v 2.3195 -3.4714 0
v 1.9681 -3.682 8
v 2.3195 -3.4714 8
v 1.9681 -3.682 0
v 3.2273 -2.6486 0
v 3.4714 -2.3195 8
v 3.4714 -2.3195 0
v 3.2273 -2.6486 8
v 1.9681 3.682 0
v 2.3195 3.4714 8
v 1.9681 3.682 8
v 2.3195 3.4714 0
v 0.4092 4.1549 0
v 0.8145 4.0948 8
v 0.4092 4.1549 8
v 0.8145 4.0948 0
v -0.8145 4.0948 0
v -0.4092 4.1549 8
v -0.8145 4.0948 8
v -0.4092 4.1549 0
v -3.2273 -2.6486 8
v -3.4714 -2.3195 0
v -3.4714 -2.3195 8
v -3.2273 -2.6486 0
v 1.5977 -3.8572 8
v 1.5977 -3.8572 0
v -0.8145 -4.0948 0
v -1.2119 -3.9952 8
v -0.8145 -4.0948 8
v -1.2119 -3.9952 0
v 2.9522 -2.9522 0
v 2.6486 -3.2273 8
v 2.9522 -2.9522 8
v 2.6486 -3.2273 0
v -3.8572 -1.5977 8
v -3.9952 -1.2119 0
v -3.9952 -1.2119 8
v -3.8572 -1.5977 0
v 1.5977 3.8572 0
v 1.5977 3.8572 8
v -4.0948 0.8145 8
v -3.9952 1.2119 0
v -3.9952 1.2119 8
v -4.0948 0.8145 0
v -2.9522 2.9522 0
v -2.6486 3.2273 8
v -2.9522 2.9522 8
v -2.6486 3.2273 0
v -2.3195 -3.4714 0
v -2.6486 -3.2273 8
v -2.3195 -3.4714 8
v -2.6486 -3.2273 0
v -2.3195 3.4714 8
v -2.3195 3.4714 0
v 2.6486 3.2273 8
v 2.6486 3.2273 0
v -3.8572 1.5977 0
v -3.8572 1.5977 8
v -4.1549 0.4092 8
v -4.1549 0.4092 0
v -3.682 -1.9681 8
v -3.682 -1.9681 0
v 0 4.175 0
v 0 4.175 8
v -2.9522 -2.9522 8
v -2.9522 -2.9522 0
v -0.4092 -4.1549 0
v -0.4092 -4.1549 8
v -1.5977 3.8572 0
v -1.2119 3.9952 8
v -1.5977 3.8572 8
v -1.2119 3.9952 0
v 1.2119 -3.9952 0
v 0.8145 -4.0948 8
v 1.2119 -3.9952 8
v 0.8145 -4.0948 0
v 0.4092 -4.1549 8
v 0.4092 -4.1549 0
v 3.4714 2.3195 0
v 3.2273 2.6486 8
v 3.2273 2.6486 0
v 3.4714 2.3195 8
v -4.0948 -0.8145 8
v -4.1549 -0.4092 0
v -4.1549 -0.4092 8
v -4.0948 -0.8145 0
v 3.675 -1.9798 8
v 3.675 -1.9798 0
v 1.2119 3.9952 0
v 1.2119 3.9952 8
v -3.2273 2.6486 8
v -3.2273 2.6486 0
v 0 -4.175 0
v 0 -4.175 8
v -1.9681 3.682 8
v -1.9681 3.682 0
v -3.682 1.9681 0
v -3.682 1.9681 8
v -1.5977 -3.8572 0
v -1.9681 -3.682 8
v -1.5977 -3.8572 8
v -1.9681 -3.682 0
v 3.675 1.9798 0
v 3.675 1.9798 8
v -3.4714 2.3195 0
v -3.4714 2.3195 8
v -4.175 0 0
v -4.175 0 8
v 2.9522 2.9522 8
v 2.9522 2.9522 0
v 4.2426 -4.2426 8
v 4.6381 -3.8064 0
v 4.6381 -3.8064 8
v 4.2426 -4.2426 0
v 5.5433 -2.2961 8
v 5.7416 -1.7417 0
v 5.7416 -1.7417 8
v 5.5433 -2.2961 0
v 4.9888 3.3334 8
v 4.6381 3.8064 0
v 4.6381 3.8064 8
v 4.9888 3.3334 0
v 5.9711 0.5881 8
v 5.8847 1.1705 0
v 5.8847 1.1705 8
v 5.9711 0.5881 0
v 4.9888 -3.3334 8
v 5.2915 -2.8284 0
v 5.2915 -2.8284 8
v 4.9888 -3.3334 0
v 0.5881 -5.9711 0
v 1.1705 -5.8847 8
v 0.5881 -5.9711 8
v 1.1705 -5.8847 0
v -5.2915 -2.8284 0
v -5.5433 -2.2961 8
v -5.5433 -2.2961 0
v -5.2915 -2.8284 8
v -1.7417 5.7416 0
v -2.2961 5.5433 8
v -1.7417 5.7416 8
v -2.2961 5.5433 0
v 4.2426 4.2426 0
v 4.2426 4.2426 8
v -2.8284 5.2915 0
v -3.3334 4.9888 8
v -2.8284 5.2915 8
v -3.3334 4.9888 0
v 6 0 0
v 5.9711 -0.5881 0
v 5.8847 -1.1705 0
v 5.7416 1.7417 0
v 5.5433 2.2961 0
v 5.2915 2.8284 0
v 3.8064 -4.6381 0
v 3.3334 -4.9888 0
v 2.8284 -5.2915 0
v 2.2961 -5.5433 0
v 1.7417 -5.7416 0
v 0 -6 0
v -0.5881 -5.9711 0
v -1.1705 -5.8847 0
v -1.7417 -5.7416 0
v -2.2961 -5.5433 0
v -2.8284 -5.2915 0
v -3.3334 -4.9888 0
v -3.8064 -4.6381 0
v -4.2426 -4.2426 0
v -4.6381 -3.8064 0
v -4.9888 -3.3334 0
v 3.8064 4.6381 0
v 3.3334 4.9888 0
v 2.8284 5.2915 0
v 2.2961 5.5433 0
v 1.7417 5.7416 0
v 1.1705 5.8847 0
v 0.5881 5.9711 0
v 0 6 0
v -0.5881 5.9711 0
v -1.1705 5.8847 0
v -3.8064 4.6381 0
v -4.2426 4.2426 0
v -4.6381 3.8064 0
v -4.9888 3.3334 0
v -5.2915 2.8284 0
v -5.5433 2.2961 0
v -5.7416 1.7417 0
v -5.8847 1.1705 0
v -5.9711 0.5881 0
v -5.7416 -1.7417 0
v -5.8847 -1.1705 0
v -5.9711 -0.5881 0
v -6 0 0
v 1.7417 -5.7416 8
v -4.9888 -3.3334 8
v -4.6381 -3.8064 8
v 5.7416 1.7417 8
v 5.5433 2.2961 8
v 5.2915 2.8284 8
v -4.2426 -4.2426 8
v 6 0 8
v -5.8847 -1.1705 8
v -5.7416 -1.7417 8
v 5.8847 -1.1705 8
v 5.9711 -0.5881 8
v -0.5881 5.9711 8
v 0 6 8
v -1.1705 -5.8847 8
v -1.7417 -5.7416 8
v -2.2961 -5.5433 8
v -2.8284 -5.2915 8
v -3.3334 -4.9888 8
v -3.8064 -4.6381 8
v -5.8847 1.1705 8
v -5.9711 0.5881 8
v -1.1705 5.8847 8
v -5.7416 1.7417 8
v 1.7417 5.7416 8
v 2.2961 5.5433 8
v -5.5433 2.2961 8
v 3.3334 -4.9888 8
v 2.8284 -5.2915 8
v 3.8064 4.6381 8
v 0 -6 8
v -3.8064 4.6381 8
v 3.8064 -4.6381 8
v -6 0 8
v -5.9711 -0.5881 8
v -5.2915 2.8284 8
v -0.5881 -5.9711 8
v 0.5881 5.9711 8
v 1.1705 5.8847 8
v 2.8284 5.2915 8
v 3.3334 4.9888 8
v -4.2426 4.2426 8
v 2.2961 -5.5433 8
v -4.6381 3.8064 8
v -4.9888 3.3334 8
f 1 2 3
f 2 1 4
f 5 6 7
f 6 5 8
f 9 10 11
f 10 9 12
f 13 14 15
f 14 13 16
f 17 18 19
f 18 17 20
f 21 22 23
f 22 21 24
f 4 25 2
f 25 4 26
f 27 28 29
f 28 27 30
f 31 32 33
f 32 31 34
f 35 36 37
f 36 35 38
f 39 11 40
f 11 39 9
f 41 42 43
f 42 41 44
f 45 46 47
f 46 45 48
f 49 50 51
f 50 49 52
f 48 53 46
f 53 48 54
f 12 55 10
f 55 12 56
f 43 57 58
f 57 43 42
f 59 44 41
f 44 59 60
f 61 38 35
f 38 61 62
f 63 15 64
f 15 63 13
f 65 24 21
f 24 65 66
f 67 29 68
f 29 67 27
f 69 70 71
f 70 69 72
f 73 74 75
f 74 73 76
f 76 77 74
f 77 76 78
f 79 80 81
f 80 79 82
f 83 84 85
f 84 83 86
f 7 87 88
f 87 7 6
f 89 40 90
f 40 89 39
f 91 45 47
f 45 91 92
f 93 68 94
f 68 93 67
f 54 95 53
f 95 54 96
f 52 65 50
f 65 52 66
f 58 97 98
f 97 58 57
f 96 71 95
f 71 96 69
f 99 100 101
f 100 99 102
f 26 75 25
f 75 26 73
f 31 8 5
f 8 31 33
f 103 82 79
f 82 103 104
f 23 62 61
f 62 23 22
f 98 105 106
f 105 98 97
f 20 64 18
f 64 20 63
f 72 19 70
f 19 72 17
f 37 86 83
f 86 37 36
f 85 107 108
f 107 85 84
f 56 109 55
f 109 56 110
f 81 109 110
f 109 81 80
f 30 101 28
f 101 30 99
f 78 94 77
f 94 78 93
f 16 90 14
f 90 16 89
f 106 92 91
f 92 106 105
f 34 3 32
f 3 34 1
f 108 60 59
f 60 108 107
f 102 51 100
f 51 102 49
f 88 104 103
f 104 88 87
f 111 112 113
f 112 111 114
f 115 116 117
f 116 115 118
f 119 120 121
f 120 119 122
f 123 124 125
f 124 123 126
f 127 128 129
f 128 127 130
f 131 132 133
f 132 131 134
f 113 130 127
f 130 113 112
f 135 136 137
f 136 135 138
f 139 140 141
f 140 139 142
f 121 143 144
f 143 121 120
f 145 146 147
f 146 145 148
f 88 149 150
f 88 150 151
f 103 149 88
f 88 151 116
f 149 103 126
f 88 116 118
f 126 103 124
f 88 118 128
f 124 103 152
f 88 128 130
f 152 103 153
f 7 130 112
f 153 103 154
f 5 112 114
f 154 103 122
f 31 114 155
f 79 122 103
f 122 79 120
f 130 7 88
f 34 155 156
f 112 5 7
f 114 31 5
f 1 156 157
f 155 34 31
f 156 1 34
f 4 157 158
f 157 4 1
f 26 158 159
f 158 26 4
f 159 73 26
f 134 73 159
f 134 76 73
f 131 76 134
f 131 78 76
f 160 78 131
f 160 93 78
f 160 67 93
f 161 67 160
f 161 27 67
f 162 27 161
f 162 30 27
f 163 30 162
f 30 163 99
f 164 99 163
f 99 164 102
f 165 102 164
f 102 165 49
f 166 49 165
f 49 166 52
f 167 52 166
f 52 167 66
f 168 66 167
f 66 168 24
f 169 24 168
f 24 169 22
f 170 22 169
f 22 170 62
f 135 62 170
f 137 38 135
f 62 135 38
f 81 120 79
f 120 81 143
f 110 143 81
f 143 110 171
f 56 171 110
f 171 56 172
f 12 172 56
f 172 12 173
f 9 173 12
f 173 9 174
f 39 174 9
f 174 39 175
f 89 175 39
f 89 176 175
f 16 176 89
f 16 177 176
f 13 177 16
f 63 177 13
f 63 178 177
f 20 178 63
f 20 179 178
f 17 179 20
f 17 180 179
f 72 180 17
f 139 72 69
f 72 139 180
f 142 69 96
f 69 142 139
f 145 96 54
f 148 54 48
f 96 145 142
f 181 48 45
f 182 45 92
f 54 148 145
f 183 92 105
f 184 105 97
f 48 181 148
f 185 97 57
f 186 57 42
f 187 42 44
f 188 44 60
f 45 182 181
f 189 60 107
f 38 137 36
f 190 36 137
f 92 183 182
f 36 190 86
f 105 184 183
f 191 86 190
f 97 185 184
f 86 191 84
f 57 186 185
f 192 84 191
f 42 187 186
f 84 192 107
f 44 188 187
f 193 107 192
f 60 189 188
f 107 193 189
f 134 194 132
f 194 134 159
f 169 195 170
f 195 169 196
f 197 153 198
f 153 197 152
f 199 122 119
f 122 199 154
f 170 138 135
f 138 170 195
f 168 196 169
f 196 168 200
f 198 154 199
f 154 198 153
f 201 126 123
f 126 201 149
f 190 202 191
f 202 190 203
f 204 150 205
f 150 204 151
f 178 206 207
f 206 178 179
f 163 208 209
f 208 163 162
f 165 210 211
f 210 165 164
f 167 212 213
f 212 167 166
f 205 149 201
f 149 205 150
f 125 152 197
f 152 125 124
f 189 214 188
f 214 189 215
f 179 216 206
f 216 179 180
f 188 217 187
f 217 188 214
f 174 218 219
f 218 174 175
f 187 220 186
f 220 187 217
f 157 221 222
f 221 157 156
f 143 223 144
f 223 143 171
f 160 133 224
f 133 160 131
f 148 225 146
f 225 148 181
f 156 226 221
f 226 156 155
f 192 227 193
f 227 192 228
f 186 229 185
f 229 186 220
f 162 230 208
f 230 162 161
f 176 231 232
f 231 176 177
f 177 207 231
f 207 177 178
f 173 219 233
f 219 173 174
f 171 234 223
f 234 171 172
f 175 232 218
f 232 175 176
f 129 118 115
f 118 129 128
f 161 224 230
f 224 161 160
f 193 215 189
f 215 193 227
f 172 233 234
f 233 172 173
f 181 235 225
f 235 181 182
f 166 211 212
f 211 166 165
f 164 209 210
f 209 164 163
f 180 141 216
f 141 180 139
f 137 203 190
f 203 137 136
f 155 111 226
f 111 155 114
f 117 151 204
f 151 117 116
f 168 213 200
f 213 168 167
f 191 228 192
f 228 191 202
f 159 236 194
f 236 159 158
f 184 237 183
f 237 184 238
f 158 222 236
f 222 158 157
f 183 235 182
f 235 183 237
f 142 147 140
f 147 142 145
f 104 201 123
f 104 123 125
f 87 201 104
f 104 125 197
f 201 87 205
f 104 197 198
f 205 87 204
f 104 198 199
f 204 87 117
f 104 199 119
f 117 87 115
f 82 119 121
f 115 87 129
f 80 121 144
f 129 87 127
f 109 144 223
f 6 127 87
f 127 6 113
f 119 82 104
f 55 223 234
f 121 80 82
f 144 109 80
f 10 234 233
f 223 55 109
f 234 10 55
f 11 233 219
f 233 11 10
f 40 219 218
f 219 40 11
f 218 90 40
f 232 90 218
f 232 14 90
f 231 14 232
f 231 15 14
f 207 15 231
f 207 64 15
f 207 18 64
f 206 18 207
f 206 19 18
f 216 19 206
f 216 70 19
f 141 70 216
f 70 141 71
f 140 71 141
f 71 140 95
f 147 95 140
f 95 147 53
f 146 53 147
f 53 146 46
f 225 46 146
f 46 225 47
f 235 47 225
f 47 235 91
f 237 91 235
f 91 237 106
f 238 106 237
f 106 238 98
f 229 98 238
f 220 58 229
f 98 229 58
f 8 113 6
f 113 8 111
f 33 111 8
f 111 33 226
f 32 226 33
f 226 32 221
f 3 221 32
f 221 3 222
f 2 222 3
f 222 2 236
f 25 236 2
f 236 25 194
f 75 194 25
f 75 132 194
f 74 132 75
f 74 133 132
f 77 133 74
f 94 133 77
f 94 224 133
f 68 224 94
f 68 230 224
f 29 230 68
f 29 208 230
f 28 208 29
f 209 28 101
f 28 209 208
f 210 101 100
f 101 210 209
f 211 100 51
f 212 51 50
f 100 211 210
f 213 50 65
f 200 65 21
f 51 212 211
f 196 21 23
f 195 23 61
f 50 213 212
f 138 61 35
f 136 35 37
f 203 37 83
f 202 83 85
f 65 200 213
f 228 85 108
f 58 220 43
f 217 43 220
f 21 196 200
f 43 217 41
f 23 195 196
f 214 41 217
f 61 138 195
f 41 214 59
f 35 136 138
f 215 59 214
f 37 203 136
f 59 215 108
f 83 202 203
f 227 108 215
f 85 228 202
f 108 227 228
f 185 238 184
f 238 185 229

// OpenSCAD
// file: parameters.scad
// =============================================================================
// Gen-BZ — nightly 2026-10-11 (physics_scorer, honest magpylib watts)
// Minimum-gap, wire-saver stator for the Gen-BX rotors: only 5.4 mm of copper (12 layers), so the magnet faces are just 8.0 mm apart and peak Bz at the copper reaches ≈0.64 T. It holds ~20 % less copper than Gen-BX (≈300 m, leaving ~90 m of the spool spare and much less winding), and loses only ≈5.5 % of the watts vs Gen-BX — the best watts-per-metre of wire tonight.
// Clocking 0 deg (magnets N facing S) + D-flat keyed bore + index notch + flip-symmetric hole map.
// Windable 2-piece bobbin; turns = physics_scorer turns_fit; copper only between flanges.
// Steel back-iron: 2× Ø168 × 4.76 mm (3/16") mild-steel discs (steel_backiron_disc.dxf); magnets sit ON the steel
// (through-pockets) -> score with --back-iron. Night 2026-10-11.
// =============================================================================
topology            = "dual_rotor";

// --- Wire / winding (physics_scorer winding-fit) -------------------------------
wire_awg            = 26;
wire_od             = 0.45;     // insulated OD mm (bare 0.405)
fill_realistic      = 0.65;     // insulated-wire area / window (DENSE layered wind with a jig; scorer cap 0.65)
turns               = 328;       // = physics_scorer turns_fit (do NOT raise)
coil_former_type    = "bobbin";
coil_core_inset     = 14.87;     // radial copper build: hub = copper boundary inset by this
wind_build_axial    = 0.0;      // nothing proud of the flanges
wind_build_radial   = 0.0;

// --- Bobbin (base + lid) ---------------------------------------------------------
coil_id_r           = 53.00;    // copper boundary sector
coil_od_r           = 88.00;
span_deg            = 26.43;    // = pitch - 2*asin((wall+0.85)/coil_id_r) -> >=1.2 mm stator web
former_web          = 5.40;     // copper height between flanges (TALL copper: steel keeps Bz up)
flange_t            = 0.80;     // >= 0.8 mm FDM wall rule (tall winds push on the flanges)
wall                = 0.80;     // flange lip beyond copper
former_bare_h       = former_web + 2 * flange_t;
coil_envelope_h     = former_bare_h + 2 * wind_build_axial;
tab_w               = 7.0;
tab_len             = 7.0;
tab_h               = former_bare_h / 2;
pin_d               = 1.9;      // 1.75 mm filament locating pin
coil_mount_r        = coil_od_r + 0.2 + 4.0;
lead_y              = 1.6;
lead_slot_w         = 0.9;
lead_groove_d       = 0.6;

// --- Gap -------------------------------------------------------------------------
run_clear           = 0.50;     // rotor face -> flange
gap_spacer_h        = run_clear + wind_build_axial;
m2m                 = coil_envelope_h + 2 * run_clear;   // rotor face to rotor face (= gap_sleeve length)

// --- Stator ----------------------------------------------------------------------
coil_stations       = 12;
bay_clear           = 0.25;
stator_thick        = former_bare_h;                        // bobbins flush both faces
stator_od           = 194;
shaft_clear_stator  = 14.0;     // stator is static; gap sleeve OD 12 spins inside

// --- Rotor(s) --------------------------------------------------------------------
magnet_Br           = 1.43;     // N52
magnet_d_large      = 20.0;
magnet_h_large      = 5.0;      // one O20x5 per pocket
magnet_h_small      = 5.0;      // unused: no O5 pockets in this kit
halbach_magnetisation = "none";  // NO O5 assist magnets in this kit (scan: they lower the 4-pole score)
rotor_b_same_axis   = true;     // same-index magnets share one axis: N faces S across the gap
large_pocket_d      = 20.3;
small_pocket_d      = 5.3;
pocket_h            = 5.00;     // THROUGH the carrier: magnet back face sits on the steel disc (FLUSH seat: carrier = magnet height, magnet face level with the rotor face)
large_n             = 8;
R_large             = 71.0;
small_r_list        = [];       // no O5 pockets
carrier_od          = 168.0;
carrier_thick       = pocket_h;
hub_h               = 12.0;     // > steel_t + insert: radial set-screw clears the steel
hub_od              = 24.0;     // slim hub so the M4 brace rods fit at R~18 inside the coil ring
hub_insert_d        = 4.0;      // M3 heat-set insert, radial, bears on the D-flat
rotor_b_offset_deg  = 0.0;      // CLOCKING: magnets directly opposite
shaft_key           = "dflat";
dflat_depth         = 0.5;      // 8 mm shaft with 0.5 mm flat (7.5 across flat)
index_notch_d       = 3.0;

// --- Steel back-iron (buyable laser-cut) -------------------------------------------
steel_t             = 4.76;      // mild steel thickness (image method ignores it; sized from steel_flux.py so the return path stays well below saturation)
steel_center_hole   = 26.0;     // slips over the rotor hub (OD 24)
steel_od            = carrier_od;   // steel disc OD = rotor carrier OD

// --- Modular MAX interface ----------------------------------------------------------
shaft_bore          = 8.35;
dflat_x             = 4.0 - dflat_depth + (shaft_bore - 8.0) / 2;
bearing_d           = 21.85;
bearing_h           = 7.2;
m3_clear            = 3.5;
bolt_r_inner        = 30.0;     // M3 steel-disc clamp bolts (inside the magnet ring)
bolt_n_inner        = 4;
bolt_inner_angles   = [0, 90, 180, 270];
bolt_r_outer        = 44.0;     // second M3 steel-disc clamp ring
bolt_outer_angles   = [67.5, 112.5, 247.5, 292.5];
flange_bolt_r       = 91.5;     // frame rods: OUTSIDE the rotor OD (rotors spin inside them)
flange_bolt_n       = 4;
flange_bolt_offset  = 45.00;    // between coil stations -> never cuts a lead groove/tab
brace_r             = 18.0;
brace_d             = 4.3;      // temporary M4 jack rods (assembly only)
brace_n             = 4;
brace_angles        = [45, 135, 225, 315];          // flip-symmetric

spacer_pad_od       = 14.0;
spacer_pad_id       = m3_clear;
endbell_od          = 193.0;
endbell_thick       = 8.0;
endbell_shaft_clear = 10.0;
collar_h            = 10.0;
standoff_od         = 9.0;
frame_standoff_h    = run_clear + carrier_thick + hub_h + collar_h + 2.0;
sleeve_od           = 12.0;
plate_max_mm        = 410;

$fn = 64;
// main file
// Gen-BZ — gap sleeve: rigid spacer on the shaft BETWEEN the two rotor carriers (passes through the stator
// hole). Length = m2m, so it sets the magnet gap and carries the full magnet pull. Print x1, upright.
include <parameters.scad>;
$fn = 64;
// D-flat keyed bore: flat faces +X (angle 0 = magnet pocket 0 = index notch)
module dflat_bore(h) {
    intersection() {
        cylinder(d=shaft_bore, h=h);
        translate([-shaft_bore, -shaft_bore, 0]) cube([shaft_bore + dflat_x, 2*shaft_bore, h]);
    }
}

difference() {
    cylinder(d=sleeve_od, h=m2m);
    translate([0, 0, -0.1]) dflat_bore(m2m + 0.2);
}
